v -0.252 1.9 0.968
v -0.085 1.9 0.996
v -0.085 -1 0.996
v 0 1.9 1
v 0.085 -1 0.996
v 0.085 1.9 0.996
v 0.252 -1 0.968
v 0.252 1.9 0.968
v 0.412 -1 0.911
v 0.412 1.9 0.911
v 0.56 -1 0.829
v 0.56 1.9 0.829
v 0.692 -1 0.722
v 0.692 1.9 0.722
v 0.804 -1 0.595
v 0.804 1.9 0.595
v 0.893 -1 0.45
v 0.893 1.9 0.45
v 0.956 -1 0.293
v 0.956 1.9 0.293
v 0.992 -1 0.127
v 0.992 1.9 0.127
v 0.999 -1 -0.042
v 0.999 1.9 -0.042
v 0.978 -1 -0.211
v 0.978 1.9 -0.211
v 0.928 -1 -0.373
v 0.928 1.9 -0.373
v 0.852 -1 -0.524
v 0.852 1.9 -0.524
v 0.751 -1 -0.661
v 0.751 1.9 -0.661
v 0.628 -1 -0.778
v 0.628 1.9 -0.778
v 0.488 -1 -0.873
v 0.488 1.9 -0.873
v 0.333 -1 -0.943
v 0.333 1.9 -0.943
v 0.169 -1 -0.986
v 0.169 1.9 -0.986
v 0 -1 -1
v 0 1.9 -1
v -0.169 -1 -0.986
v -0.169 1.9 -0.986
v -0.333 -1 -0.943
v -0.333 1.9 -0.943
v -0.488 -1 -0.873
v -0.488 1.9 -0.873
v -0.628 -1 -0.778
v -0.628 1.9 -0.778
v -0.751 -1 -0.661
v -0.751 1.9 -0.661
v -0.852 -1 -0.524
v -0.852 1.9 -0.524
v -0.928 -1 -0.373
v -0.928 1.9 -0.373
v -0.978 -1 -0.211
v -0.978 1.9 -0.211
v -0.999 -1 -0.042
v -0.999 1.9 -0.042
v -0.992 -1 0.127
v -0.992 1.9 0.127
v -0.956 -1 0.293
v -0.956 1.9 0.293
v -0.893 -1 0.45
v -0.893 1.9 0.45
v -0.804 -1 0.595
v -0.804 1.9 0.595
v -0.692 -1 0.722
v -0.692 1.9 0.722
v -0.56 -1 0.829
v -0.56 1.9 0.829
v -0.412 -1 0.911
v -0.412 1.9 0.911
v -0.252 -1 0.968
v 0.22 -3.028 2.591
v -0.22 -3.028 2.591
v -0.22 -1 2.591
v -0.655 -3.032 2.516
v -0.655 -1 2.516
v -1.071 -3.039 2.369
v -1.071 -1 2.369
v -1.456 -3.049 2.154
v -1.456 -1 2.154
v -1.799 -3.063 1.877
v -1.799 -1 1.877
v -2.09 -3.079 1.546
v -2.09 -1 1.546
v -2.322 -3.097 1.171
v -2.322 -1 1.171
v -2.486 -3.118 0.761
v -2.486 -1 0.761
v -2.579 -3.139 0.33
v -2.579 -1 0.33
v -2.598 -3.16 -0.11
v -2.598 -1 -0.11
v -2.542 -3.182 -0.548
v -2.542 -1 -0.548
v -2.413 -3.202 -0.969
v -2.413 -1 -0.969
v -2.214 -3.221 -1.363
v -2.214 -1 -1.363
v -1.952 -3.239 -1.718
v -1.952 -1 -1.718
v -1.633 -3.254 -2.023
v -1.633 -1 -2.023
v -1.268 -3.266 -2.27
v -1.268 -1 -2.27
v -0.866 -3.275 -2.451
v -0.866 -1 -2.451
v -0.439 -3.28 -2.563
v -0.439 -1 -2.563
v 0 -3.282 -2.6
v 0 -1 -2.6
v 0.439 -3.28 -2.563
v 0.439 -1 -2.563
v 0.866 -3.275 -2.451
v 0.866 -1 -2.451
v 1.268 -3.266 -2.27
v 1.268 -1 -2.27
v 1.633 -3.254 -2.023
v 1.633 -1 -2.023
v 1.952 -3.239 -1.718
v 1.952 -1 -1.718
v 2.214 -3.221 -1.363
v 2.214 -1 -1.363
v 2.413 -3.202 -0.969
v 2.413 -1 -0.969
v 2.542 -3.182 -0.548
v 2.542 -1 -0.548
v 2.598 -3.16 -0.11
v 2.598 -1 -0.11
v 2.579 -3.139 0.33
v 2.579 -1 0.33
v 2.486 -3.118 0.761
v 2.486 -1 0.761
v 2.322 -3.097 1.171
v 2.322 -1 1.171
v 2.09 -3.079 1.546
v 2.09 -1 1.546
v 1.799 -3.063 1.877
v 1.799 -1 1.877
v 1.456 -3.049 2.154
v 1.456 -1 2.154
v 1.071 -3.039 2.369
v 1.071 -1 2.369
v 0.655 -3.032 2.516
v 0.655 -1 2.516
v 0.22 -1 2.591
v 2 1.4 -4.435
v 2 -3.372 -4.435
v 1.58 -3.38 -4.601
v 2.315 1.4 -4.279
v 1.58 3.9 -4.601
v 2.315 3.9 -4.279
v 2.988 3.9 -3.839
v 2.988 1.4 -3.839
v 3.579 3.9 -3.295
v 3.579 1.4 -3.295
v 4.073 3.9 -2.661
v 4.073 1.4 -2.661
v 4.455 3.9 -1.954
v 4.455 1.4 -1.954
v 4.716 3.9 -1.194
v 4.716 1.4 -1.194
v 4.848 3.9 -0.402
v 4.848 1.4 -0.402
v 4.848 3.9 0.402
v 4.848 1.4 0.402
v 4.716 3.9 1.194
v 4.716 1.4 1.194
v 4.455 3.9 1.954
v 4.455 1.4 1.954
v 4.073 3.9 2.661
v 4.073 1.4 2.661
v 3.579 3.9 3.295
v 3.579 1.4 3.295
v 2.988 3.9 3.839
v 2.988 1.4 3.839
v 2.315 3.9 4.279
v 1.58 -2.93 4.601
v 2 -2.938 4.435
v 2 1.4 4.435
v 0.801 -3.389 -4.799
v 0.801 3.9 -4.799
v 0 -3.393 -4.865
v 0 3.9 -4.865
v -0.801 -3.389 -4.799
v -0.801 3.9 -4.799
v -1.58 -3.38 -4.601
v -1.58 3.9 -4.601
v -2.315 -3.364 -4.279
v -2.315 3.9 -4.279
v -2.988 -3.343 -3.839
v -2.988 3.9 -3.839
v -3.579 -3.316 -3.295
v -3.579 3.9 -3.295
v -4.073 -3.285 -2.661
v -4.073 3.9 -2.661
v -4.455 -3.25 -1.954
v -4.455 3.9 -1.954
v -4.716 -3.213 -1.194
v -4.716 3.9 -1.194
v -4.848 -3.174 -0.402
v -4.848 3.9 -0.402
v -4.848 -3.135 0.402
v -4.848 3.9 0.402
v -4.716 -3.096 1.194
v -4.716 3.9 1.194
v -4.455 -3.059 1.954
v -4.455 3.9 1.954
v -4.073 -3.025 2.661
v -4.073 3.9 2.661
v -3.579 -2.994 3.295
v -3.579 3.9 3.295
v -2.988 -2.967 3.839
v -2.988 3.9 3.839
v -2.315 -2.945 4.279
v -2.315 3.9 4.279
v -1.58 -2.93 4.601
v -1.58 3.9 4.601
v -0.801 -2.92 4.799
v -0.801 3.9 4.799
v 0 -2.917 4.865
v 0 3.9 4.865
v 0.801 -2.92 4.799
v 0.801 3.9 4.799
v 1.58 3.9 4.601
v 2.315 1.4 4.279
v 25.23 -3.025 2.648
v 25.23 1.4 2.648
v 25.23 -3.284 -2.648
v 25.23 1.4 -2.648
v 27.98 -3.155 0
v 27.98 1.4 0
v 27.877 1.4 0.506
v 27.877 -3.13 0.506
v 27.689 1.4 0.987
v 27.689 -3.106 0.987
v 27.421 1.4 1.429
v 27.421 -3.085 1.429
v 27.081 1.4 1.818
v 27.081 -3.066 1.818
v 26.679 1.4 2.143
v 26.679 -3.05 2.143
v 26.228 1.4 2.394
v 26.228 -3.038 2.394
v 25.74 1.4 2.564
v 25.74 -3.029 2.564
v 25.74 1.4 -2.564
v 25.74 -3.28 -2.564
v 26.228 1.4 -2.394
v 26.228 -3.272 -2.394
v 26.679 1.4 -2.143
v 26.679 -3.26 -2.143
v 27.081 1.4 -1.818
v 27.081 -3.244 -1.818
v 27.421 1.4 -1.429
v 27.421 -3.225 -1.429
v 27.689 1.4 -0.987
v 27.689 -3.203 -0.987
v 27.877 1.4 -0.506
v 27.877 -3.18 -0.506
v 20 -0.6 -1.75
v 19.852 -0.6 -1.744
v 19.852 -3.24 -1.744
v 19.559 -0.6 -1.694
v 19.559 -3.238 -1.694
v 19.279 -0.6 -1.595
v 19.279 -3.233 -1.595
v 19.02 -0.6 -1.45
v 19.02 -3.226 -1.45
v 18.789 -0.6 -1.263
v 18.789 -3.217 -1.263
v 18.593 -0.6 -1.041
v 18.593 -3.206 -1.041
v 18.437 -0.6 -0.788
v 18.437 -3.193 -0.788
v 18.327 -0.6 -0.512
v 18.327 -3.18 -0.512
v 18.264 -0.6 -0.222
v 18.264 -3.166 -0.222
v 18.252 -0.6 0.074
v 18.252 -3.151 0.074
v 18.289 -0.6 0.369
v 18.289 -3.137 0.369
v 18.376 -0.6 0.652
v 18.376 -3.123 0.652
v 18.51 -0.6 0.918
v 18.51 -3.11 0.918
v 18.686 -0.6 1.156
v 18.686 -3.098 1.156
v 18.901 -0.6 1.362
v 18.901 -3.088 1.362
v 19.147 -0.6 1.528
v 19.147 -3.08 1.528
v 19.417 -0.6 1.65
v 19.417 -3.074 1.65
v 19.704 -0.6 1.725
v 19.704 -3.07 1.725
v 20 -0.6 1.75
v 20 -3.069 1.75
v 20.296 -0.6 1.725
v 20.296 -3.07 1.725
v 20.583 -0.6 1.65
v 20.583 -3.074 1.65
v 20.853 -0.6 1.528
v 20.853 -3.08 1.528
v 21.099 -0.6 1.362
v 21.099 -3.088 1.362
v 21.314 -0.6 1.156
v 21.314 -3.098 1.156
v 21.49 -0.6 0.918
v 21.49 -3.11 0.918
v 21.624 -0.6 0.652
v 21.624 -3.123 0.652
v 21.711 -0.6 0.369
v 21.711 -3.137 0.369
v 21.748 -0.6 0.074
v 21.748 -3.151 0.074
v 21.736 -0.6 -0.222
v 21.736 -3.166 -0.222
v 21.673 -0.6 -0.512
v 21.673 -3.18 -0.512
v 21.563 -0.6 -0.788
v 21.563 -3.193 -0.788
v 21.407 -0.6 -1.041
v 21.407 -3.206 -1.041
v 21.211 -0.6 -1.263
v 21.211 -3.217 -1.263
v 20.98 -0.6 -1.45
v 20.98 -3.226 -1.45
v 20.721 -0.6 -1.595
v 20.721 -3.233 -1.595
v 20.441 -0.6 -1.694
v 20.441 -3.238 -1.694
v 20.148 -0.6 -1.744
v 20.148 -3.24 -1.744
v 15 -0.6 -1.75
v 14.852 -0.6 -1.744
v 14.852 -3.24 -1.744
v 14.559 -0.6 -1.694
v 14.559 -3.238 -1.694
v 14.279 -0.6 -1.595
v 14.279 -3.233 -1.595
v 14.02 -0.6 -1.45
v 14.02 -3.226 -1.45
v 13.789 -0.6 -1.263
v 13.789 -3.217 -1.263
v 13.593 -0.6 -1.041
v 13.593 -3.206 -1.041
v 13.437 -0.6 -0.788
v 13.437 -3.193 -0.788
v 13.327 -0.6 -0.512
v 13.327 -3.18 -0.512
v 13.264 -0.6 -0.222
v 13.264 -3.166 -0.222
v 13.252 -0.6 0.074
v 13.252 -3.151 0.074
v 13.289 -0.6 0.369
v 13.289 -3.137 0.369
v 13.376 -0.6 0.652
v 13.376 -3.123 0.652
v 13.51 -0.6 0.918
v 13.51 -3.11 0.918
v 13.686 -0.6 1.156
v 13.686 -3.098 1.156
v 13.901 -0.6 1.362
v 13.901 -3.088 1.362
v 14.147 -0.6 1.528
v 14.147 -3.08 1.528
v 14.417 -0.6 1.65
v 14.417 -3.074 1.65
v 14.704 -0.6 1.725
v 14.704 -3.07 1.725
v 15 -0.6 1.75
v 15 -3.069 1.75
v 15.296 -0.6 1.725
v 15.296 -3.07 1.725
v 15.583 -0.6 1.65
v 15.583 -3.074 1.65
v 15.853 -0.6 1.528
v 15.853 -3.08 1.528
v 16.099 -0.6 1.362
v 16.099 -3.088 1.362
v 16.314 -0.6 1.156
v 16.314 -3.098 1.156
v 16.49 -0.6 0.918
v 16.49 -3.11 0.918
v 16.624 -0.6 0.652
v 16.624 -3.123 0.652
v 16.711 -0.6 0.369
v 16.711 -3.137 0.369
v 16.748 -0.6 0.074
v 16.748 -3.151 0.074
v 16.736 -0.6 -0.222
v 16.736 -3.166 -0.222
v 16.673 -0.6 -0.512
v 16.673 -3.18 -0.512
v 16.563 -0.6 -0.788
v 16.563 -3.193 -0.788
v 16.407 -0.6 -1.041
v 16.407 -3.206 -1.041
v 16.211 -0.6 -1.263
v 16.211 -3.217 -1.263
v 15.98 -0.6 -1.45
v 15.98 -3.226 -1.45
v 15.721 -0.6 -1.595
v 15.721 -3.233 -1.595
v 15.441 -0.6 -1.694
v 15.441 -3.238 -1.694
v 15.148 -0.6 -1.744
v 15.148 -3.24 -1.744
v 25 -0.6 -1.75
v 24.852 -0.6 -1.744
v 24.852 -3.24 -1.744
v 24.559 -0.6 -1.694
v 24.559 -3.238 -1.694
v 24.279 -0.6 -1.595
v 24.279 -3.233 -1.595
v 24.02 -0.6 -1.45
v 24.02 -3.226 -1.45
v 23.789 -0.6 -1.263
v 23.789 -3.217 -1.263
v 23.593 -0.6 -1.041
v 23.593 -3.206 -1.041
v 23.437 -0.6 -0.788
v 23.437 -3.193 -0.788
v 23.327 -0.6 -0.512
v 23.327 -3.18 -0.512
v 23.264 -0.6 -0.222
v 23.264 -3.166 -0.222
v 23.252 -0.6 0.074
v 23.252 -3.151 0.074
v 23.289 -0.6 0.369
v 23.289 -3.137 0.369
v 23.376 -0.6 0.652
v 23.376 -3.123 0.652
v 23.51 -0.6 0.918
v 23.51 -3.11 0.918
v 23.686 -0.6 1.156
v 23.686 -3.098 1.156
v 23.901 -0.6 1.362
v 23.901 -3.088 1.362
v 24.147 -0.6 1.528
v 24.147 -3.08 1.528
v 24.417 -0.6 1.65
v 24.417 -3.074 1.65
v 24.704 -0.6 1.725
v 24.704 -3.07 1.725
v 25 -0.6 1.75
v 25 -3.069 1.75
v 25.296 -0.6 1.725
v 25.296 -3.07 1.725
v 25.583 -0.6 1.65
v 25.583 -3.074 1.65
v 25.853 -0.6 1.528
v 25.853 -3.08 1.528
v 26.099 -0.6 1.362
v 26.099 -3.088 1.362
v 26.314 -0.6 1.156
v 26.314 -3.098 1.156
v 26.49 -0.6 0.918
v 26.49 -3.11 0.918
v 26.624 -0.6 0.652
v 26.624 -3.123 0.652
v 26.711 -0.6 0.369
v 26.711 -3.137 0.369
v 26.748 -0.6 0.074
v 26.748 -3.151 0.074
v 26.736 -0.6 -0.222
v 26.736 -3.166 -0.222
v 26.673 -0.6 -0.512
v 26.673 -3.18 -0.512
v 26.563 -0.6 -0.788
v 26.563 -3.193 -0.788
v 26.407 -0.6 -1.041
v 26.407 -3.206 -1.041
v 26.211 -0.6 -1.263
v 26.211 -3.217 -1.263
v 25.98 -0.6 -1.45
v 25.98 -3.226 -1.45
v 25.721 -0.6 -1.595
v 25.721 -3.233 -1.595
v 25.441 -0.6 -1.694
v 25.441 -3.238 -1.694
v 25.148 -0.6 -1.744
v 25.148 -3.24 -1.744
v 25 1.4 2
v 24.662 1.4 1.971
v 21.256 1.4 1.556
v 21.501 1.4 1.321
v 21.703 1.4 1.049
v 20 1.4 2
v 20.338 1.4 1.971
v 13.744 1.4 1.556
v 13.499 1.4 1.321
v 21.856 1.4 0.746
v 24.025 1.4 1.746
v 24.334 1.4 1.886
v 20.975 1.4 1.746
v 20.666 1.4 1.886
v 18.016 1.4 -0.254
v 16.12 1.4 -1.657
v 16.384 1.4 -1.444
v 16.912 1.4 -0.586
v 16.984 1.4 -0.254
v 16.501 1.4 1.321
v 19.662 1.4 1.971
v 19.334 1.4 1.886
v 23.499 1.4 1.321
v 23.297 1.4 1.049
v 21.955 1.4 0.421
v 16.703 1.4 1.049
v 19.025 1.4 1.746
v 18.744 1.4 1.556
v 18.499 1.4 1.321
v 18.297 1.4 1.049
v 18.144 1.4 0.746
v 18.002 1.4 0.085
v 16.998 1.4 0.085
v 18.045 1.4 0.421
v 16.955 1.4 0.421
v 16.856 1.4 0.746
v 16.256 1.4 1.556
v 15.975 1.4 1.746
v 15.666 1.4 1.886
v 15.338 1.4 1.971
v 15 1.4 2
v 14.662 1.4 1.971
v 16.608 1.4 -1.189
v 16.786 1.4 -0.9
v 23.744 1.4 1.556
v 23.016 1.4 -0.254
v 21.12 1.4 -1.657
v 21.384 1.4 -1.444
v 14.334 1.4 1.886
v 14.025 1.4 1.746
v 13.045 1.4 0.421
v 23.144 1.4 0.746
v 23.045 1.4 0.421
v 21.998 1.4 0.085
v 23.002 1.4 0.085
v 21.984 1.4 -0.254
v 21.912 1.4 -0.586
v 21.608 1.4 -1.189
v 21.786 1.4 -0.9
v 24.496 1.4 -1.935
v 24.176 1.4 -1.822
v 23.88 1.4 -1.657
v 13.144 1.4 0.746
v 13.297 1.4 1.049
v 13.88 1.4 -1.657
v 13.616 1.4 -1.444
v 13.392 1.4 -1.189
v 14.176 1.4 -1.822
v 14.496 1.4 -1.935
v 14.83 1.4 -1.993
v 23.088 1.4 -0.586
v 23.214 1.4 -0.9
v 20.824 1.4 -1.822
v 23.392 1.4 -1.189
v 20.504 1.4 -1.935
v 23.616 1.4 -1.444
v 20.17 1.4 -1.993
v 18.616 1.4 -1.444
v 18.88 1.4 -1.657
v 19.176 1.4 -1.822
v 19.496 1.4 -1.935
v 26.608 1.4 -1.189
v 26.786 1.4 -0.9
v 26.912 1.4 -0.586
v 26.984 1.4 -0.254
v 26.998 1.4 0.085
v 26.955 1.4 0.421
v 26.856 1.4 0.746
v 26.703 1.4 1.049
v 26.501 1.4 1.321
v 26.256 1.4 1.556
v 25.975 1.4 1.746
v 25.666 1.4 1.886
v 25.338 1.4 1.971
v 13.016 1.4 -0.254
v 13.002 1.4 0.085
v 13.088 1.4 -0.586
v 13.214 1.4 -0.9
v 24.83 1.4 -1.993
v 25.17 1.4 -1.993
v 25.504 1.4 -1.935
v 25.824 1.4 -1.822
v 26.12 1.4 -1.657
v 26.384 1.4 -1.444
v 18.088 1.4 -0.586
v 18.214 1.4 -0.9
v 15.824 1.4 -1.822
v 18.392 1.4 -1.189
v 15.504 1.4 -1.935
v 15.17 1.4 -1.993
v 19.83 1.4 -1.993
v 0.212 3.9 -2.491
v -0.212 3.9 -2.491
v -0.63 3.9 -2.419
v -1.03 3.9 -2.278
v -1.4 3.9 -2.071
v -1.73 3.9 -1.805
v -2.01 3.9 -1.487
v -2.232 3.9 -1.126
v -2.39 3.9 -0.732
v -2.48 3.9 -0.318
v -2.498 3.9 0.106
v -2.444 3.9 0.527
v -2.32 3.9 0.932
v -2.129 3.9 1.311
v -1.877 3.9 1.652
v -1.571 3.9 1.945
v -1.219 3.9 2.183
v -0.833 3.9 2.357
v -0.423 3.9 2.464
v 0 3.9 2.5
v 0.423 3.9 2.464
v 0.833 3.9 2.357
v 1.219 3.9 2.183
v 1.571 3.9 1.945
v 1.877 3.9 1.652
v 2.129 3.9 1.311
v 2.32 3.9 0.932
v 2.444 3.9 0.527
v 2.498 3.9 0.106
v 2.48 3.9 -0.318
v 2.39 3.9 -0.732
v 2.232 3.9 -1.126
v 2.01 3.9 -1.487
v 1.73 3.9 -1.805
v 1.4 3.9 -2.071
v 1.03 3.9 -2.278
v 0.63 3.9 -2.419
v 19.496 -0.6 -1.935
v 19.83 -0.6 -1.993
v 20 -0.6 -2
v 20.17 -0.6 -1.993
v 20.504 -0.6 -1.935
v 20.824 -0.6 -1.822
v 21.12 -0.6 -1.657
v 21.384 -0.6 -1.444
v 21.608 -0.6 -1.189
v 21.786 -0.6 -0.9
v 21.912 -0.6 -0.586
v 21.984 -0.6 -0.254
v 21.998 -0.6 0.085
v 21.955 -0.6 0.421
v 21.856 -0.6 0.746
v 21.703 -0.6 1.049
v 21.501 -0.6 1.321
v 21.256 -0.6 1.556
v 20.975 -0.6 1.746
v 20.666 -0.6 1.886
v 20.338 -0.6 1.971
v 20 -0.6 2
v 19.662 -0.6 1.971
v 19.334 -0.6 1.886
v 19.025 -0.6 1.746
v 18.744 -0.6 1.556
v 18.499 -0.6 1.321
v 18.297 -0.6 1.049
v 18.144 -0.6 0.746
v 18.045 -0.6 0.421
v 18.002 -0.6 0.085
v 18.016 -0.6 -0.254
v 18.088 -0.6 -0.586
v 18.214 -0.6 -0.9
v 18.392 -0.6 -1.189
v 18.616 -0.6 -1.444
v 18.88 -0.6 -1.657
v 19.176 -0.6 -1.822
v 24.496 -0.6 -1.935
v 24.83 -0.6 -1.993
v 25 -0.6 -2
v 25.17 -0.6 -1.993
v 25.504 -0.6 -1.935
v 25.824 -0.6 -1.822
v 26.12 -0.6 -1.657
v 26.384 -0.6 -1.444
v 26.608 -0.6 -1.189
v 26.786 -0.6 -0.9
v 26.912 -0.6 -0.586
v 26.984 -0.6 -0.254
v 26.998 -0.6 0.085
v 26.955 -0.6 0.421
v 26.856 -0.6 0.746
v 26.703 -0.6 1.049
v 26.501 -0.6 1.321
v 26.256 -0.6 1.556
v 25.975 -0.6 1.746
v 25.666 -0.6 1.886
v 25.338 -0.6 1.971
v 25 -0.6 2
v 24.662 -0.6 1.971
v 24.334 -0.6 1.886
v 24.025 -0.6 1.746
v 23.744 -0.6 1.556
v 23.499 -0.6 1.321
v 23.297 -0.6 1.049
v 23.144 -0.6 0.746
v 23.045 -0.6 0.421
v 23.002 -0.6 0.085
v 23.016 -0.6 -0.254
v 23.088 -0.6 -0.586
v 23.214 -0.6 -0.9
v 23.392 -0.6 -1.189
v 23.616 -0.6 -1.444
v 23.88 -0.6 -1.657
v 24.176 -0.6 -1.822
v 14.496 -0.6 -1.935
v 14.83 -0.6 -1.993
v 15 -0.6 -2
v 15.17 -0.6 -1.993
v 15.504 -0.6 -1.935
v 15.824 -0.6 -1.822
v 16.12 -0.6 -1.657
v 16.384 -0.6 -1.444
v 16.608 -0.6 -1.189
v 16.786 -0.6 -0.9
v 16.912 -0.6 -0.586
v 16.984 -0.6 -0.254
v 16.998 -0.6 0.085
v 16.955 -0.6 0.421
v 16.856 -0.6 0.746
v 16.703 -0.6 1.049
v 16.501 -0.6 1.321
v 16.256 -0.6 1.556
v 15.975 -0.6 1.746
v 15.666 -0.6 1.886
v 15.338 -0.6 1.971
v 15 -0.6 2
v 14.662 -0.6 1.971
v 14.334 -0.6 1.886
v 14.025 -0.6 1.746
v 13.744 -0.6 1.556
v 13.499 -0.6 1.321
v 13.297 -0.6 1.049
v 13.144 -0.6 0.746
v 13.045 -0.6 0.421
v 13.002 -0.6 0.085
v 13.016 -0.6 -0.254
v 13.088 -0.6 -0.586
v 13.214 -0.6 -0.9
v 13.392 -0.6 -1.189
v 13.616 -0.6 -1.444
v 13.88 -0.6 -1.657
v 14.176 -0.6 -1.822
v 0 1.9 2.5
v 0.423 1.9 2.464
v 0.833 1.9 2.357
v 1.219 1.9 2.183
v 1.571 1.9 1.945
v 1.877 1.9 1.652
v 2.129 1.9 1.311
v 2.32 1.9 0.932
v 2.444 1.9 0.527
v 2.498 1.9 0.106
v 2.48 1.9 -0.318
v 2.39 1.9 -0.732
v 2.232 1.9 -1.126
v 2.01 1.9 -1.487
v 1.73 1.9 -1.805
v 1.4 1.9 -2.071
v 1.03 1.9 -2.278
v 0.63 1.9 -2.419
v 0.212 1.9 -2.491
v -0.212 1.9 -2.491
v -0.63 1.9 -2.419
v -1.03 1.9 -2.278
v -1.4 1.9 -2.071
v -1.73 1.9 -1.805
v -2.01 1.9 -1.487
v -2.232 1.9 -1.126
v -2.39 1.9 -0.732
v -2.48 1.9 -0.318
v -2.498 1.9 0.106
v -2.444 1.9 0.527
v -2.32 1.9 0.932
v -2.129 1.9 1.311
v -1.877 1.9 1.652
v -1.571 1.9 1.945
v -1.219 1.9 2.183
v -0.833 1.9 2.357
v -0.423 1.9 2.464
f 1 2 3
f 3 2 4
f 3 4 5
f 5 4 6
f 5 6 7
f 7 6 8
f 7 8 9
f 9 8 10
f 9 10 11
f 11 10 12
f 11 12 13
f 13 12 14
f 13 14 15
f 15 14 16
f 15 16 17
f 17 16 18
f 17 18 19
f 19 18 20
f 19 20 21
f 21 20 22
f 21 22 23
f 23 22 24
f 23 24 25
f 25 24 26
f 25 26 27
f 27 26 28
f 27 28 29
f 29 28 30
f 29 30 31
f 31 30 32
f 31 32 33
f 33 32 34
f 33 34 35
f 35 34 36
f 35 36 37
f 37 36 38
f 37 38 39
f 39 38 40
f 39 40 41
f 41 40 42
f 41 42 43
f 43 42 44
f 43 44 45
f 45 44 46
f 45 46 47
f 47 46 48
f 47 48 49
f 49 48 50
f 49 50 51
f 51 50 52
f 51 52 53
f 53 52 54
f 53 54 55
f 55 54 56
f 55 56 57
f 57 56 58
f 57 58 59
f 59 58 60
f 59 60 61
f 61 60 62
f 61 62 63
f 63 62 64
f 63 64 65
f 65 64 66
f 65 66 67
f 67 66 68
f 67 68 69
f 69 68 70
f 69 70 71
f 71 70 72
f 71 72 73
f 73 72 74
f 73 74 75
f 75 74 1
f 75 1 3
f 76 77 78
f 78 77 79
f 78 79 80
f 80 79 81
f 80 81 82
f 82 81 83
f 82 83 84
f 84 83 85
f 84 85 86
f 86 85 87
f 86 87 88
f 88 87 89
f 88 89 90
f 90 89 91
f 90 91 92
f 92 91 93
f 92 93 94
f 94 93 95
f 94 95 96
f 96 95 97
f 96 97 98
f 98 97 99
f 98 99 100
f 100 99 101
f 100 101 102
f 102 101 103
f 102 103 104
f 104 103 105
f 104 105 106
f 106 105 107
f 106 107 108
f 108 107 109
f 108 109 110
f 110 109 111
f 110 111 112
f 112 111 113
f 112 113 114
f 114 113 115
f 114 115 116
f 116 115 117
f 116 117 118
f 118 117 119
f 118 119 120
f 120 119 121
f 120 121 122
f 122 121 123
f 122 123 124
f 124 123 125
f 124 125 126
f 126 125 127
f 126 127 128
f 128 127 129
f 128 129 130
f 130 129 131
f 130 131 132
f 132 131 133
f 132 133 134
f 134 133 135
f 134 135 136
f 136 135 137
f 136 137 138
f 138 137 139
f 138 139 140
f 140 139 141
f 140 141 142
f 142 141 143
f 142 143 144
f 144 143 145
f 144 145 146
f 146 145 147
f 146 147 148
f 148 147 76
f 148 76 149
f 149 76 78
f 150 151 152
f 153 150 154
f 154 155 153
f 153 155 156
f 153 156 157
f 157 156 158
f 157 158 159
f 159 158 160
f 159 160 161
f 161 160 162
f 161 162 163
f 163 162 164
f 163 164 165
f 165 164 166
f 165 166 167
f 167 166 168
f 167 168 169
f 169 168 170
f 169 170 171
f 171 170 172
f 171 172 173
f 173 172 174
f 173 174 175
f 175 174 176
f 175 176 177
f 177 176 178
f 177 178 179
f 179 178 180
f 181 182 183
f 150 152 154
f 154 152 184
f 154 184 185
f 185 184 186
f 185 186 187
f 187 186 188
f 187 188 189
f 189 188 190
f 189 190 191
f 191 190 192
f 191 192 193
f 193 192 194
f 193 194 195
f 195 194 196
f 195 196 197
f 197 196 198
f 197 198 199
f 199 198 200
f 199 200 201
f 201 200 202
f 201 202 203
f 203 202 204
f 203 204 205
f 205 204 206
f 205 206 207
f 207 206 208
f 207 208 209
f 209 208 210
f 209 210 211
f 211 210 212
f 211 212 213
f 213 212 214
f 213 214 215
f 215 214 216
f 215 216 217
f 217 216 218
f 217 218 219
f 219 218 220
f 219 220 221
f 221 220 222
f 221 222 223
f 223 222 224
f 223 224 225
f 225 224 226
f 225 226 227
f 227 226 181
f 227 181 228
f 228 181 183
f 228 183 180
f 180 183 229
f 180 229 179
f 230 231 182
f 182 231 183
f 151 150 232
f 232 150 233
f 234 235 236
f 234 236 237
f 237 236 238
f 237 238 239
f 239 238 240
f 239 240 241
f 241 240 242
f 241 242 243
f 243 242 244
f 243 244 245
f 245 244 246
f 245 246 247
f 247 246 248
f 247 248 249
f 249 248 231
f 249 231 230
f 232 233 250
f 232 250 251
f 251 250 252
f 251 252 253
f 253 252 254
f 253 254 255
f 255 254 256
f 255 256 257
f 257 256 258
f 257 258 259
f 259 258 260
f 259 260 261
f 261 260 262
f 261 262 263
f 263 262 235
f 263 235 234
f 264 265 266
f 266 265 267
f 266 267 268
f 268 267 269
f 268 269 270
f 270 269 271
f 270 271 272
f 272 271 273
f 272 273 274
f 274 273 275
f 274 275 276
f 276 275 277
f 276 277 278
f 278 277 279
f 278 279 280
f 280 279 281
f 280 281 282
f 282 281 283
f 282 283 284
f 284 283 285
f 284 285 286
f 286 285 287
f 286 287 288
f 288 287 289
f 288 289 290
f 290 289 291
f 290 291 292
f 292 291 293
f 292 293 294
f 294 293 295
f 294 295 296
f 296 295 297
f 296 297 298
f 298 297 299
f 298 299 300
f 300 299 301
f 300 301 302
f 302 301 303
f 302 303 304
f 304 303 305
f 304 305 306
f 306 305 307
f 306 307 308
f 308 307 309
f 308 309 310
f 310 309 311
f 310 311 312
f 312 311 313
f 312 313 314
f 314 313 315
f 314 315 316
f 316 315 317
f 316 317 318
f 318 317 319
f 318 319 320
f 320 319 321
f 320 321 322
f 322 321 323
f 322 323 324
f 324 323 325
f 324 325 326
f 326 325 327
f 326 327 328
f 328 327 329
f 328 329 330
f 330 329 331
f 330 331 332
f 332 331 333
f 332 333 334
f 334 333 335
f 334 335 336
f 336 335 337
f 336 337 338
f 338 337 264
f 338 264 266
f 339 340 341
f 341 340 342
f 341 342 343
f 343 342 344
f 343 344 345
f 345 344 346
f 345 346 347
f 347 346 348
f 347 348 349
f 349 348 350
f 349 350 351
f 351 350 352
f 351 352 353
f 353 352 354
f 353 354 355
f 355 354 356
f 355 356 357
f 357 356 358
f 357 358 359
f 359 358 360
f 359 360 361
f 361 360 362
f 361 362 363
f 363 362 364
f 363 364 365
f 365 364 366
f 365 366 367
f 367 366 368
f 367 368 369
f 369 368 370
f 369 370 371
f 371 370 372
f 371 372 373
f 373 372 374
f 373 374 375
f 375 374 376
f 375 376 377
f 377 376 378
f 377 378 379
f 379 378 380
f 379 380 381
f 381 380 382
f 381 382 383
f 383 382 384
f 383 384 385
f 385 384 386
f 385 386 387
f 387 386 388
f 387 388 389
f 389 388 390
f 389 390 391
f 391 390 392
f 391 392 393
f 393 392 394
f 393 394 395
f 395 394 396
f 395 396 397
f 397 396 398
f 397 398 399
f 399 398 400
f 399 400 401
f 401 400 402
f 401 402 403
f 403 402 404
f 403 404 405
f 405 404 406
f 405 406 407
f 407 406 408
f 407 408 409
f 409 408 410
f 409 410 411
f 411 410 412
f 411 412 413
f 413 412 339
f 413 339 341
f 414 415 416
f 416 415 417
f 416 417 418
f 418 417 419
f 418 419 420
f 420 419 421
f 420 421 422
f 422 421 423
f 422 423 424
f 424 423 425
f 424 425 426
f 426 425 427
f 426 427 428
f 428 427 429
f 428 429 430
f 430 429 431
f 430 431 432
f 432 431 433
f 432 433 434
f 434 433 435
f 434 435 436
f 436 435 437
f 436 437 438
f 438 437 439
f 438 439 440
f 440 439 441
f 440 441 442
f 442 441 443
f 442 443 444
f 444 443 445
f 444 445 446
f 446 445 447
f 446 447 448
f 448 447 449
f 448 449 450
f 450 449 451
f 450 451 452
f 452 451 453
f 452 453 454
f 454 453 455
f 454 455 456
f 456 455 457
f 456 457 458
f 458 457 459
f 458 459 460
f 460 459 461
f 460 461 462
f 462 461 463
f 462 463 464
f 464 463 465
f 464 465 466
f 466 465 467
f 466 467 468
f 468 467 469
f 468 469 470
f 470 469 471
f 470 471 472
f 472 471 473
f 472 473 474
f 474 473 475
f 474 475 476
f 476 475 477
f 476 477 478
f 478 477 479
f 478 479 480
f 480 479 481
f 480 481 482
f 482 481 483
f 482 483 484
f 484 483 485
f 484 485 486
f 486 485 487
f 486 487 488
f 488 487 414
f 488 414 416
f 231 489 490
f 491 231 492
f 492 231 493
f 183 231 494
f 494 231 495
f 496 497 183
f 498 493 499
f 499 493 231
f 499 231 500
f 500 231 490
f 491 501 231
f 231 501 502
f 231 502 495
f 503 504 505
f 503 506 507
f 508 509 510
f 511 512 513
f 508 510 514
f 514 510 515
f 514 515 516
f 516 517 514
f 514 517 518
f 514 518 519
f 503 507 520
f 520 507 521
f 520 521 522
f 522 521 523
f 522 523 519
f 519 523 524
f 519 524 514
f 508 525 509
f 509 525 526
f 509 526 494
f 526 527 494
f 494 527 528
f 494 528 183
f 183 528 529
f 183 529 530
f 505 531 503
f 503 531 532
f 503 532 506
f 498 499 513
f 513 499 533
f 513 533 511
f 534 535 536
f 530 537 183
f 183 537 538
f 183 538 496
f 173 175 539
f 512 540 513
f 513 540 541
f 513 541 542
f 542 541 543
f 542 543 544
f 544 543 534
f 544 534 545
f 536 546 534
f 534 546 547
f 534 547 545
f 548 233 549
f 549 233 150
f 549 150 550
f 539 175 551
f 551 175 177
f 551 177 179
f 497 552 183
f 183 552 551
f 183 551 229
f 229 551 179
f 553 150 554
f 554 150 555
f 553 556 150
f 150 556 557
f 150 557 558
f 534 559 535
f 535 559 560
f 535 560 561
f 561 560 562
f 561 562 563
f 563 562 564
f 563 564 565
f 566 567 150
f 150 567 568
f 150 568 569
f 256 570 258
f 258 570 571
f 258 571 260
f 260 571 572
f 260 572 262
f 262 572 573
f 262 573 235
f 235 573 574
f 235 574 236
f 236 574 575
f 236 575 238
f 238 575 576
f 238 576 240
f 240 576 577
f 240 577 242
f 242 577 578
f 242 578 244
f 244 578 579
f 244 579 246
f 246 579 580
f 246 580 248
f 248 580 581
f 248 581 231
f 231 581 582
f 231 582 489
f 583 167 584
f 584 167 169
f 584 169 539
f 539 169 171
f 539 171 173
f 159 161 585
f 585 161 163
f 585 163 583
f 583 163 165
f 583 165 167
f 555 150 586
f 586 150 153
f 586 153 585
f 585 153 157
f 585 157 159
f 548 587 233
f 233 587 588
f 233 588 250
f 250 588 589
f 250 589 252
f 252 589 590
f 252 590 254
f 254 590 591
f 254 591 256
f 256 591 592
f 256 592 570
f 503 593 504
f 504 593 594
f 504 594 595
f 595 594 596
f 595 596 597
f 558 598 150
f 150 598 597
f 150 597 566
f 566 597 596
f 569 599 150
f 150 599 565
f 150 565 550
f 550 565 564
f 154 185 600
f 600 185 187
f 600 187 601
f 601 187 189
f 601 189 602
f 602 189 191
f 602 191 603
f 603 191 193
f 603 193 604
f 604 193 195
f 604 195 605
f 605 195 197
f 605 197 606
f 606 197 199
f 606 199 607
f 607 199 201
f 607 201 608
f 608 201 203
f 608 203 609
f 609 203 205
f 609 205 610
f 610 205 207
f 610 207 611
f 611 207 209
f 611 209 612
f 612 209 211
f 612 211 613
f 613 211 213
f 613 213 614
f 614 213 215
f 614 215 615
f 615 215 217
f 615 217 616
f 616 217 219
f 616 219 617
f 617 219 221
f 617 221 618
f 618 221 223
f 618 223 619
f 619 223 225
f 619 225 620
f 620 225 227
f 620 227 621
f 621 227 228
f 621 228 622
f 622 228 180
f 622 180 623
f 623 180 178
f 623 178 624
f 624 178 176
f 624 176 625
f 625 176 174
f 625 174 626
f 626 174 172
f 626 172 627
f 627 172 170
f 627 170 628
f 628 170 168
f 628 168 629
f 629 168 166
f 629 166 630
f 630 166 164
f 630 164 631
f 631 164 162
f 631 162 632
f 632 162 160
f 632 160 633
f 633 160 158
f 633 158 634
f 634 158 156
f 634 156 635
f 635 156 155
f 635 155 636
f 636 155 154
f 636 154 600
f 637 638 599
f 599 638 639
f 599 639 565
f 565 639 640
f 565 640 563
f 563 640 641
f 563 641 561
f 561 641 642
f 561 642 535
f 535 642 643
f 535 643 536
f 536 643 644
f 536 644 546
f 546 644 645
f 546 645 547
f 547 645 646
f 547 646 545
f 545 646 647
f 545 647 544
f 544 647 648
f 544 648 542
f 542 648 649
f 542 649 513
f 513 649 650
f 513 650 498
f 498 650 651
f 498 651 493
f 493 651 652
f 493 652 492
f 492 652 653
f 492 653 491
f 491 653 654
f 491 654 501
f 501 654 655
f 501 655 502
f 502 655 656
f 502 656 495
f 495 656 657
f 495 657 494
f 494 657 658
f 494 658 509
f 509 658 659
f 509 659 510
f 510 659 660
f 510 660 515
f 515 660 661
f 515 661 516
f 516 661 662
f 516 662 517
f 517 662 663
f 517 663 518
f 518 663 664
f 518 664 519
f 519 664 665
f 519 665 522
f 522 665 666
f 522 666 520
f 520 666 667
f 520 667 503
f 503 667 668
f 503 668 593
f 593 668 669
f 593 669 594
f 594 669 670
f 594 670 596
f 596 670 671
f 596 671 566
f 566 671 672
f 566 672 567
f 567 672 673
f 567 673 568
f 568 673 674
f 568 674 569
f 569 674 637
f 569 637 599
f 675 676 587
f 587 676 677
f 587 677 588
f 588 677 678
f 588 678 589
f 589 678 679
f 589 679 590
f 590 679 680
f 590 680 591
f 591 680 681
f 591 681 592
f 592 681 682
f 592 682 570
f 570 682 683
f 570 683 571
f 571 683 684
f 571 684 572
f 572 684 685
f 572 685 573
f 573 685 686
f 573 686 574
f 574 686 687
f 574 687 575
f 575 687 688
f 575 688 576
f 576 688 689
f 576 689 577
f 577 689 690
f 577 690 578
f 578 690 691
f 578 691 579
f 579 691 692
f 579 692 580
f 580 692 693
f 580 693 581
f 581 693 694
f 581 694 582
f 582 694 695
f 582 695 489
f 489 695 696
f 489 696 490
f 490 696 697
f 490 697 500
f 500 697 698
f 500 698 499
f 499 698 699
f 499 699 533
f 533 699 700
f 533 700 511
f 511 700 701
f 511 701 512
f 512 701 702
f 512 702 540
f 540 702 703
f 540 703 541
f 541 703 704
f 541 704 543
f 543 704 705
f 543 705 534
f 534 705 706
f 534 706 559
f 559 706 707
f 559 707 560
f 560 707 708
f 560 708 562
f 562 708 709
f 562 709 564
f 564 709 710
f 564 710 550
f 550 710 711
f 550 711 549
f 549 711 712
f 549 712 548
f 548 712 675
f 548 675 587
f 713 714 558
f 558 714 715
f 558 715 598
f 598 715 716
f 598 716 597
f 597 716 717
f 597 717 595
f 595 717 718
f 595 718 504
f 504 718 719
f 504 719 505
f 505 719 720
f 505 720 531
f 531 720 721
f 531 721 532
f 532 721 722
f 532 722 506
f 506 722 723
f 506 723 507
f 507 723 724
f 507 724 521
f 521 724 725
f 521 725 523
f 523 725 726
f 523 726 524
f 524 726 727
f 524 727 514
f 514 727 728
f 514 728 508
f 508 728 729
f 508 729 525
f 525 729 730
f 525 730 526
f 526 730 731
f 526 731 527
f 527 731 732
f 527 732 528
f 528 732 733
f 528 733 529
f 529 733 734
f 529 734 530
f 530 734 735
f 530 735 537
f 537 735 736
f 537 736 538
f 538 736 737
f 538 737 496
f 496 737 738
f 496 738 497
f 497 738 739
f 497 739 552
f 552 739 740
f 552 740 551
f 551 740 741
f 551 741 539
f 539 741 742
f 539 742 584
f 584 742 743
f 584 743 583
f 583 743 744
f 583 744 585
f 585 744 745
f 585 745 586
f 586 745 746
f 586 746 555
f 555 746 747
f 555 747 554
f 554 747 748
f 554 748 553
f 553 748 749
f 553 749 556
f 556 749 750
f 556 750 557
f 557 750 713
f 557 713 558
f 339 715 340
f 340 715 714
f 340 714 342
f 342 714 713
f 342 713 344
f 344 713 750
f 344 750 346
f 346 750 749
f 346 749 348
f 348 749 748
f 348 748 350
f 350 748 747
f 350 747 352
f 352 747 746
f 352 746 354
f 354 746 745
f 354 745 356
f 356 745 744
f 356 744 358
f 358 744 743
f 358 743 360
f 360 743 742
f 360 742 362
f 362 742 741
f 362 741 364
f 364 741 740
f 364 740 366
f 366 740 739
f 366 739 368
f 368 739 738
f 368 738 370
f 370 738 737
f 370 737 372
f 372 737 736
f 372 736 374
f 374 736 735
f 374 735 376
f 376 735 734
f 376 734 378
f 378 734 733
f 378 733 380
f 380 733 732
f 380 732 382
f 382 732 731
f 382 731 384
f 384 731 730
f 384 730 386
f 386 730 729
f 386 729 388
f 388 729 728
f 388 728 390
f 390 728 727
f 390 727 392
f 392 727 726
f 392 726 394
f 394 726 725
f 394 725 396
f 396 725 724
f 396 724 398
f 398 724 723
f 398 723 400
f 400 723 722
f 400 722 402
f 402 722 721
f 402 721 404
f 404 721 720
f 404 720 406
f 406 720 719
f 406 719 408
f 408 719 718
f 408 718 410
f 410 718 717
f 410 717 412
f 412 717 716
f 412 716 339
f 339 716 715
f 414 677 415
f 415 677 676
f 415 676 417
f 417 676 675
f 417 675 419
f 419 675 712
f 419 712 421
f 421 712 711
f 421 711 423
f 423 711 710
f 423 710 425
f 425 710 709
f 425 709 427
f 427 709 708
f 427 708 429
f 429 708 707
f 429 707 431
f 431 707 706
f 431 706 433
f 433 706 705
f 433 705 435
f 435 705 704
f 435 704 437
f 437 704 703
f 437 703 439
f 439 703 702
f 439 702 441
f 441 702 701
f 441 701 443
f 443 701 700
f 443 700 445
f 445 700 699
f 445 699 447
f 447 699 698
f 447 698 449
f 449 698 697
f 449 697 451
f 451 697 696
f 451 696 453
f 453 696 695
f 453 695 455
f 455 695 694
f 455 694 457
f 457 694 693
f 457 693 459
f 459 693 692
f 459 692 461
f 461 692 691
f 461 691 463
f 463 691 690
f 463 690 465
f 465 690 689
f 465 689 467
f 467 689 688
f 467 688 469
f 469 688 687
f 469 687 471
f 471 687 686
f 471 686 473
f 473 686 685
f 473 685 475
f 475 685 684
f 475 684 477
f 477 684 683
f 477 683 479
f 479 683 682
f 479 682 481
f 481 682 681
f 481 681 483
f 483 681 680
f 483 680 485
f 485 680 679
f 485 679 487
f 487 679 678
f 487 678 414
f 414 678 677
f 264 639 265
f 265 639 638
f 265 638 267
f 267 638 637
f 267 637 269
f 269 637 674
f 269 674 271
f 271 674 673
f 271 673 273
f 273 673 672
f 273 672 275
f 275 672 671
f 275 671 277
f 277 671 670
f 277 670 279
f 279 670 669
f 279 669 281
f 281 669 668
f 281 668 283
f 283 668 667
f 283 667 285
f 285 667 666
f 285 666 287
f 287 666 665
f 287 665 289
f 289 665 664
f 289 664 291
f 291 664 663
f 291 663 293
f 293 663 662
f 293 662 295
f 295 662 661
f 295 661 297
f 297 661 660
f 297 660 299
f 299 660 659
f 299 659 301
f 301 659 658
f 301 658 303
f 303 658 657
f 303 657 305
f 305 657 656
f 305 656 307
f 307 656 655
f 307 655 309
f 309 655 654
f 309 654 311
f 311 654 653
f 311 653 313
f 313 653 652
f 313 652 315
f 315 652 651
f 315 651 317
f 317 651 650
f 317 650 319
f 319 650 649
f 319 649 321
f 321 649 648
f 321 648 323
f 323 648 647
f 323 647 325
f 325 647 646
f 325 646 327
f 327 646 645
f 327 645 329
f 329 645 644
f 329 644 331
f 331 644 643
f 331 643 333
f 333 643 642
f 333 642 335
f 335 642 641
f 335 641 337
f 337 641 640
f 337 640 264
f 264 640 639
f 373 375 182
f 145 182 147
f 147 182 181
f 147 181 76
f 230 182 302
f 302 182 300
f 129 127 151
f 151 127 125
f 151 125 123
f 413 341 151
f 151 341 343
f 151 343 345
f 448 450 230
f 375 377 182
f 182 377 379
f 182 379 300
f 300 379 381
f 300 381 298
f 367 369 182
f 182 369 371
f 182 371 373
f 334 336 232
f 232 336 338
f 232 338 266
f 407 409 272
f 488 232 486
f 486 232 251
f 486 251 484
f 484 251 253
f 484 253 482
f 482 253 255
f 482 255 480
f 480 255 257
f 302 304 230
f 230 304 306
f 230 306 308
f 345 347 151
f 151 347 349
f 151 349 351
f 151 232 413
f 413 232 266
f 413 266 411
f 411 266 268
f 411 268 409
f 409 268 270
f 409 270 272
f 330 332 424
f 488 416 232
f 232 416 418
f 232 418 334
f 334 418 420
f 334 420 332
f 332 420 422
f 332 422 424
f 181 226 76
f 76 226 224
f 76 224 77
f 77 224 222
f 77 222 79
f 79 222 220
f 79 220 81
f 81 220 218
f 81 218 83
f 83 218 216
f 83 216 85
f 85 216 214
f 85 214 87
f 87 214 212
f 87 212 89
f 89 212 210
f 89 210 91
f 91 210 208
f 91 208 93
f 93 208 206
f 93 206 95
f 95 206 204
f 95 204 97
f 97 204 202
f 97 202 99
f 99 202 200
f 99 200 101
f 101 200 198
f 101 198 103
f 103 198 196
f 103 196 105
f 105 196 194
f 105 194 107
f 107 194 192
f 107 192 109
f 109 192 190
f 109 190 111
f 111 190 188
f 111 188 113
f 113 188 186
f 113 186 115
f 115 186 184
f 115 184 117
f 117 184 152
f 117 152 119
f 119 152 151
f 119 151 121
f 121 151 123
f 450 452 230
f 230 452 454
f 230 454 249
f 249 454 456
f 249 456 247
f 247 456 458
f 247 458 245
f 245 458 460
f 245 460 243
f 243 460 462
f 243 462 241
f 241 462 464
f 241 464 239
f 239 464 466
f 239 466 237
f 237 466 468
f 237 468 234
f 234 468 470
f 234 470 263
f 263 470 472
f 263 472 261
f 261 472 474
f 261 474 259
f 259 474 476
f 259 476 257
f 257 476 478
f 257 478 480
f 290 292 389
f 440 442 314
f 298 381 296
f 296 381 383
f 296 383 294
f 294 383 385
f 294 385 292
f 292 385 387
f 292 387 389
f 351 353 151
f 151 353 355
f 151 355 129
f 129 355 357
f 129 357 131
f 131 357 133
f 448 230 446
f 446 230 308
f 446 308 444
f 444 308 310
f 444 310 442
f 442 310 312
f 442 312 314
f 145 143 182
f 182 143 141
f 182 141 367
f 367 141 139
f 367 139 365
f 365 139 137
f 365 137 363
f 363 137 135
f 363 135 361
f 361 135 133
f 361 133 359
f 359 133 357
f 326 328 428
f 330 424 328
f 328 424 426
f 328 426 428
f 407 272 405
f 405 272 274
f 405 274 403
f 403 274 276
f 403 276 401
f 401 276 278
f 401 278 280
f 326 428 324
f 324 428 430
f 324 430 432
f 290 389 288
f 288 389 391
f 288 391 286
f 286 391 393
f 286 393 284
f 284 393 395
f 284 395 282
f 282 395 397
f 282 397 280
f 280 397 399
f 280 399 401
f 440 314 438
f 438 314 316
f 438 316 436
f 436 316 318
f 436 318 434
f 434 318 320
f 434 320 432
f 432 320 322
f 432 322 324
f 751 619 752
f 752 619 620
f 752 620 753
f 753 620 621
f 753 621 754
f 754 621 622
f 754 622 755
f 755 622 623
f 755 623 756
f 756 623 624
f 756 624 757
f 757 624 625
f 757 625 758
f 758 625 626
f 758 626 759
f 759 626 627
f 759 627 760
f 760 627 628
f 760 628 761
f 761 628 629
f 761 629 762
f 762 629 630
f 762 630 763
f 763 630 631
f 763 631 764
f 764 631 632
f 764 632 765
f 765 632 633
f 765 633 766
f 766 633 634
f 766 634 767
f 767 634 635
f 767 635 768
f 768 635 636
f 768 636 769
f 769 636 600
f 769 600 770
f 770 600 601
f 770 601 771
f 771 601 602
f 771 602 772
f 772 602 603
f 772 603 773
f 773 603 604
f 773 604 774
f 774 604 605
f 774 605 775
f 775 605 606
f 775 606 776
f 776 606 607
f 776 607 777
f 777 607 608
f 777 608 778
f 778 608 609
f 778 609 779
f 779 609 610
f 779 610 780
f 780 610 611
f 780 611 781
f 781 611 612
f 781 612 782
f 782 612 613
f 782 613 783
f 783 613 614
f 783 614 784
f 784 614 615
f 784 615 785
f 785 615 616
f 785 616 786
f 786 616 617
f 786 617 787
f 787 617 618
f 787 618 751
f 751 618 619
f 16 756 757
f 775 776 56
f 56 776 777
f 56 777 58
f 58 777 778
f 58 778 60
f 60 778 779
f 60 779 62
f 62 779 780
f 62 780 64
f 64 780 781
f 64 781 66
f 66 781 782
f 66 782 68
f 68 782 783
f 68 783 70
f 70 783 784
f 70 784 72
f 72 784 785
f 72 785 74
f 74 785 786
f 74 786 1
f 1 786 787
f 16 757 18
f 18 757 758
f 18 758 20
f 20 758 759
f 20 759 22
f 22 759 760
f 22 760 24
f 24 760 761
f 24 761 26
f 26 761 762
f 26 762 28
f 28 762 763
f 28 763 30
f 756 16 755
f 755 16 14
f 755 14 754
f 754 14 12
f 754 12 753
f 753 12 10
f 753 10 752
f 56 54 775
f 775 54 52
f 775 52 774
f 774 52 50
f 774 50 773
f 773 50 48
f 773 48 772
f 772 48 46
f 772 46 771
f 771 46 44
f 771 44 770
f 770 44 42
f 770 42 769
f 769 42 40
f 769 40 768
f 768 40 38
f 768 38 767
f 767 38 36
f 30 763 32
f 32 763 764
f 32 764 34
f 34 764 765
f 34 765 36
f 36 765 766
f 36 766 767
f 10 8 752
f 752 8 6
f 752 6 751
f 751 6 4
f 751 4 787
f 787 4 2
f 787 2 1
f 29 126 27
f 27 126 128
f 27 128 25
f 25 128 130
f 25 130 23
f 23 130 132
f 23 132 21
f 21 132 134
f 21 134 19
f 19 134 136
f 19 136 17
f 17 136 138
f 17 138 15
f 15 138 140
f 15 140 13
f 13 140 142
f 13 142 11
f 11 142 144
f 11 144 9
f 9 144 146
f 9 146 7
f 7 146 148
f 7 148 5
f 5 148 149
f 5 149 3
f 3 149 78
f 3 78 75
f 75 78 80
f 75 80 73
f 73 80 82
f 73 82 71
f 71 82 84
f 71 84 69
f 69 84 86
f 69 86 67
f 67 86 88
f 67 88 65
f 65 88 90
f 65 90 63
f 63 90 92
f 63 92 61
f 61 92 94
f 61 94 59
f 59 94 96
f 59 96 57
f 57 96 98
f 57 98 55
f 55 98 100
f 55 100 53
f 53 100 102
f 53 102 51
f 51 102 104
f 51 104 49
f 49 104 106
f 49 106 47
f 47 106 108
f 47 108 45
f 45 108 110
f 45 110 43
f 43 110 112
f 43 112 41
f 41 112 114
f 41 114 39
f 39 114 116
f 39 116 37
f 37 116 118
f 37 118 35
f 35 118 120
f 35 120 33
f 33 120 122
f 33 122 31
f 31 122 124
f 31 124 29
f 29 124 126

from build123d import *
from build123d.topology import SkipClean

# Parameters (mm, degrees)
SKETCH1_R                = 0.6
BOSS_EXTRUDE1_DEPTH      = 1.4
SKETCH2_R                = 2.6
CUT_EXTRUDE1_DEPTH       = 1
SKETCH3_R                = 3.5
SKETCH3_R_2              = 1
BOSS_EXTRUDE2_DEPTH      = 2.5
SKETCH4_R                = 1.2
CUT_EXTRUDE2_DEPTH       = 20.282440198
SKETCH6_W                = 35.735260114
SKETCH6_H                = 17.672039004
CUT_EXTRUDE4_DEPTH       = 20.513392837
CUT_EXTRUDE5_DEPTH       = 18.980545042
SKETCH_1_R               = 0.75
EXTRUDE_1_DEPTH          = 2
EXTRUDE_START            = 0.6
SKETCH_2_R               = 0.6
SKETCH_2_R_2             = 2.6
EXTRUDE_2_DEPTH          = 0.6
CUT_EXTRUDE_1_DEPTH      = 26.836795467
CUT_EXTRUDE_1_DEPTH_BACK = 26.836795467
SKETCH_3_R               = 0.75
SKETCH_3_R_2             = 0.6
EXTRUDE_3_REACH          = 27.837
EXTRUDE_4_DEPTH          = 2
CUT_EXTRUDE_2_DEPTH      = 10
CUT_EXTRUDE_2_DEPTH_BACK = 2
SKETCH_7_R               = 2
FILLET_1_R               = 3
EXTRUDE_START_2          = 3
SKETCH_9_R               = 1.75
SKETCH_9_R_2             = 2.6
EXTRUDE_5_DEPTH          = 3
EXTRUDE_START_3          = -5
SKETCH_10_R              = 4.86502339
SKETCH_10_R_2            = 3.625748898
EXTRUDE_6_DEPTH          = 5
CUT_EXTRUDE_5_DEPTH      = 0.6
CUT_EXTRUDE_5_DEPTH_BACK = 30.442340009
SKETCH_13_W              = 39.79025269
SKETCH_13_H              = 26.985080274
EXTRUDE_START_4          = -2.9
SKETCH_14_R              = 4.86502339
SKETCH_14_R_2            = 1
EXTRUDE_7_DEPTH          = 2.9
SKETCH_15_R              = 2.5
CUT_EXTRUDE_6_DEPTH      = 2
EXTRUDE_START_5          = 2
SKETCH_16_R              = 2.6
SKETCH_16_R_2            = 1
EXTRUDE_8_DEPTH          = 2


with BuildPart() as part:
    # Sketch1 → Boss-Extrude1 (new body)
    with BuildSketch(Plane(origin=(0, 0, 0), x_dir=(1, 0, 0), z_dir=(0, 1, 0))):
        with BuildLine():
            Line((-15.2, 2), (-2, 2.95))
            Line((-2, 2.95), (-2, 6.35))
            ThreePointArc((-2, 6.35), (0, 8.35), (2, 6.35))
            Line((2, 6.35), (2, 3.5))
            Line((2, 3.5), (15.2, 2))
            ThreePointArc((15.2, 2), (17.2, 0), (15.2, -2))
            Line((15.2, -2), (2, -3.5))
            Line((2, -3.5), (2, -6.35))
            ThreePointArc((2, -6.35), (0, -8.35), (-2, -6.35))
            Line((-2, -6.35), (-2, -2.95))
            Line((-2, -2.95), (-15.2, -2))
            ThreePointArc((-15.2, -2), (-17.2, 0), (-15.2, 2))
        make_face()
        with Locations(Location((0, 6.35, 0), (0, 0, 270))):
            Circle(SKETCH1_R, mode=Mode.SUBTRACT)
        with Locations(Location((0, 4.75, 0), (0, 0, 270))):
            Circle(SKETCH1_R, mode=Mode.SUBTRACT)
        with Locations(Location((0, -4.75, 0), (0, 0, 90))):
            Circle(SKETCH1_R, mode=Mode.SUBTRACT)
        with Locations(Location((0, -6.35, 0), (0, 0, 90))):
            Circle(SKETCH1_R, mode=Mode.SUBTRACT)
        with Locations(Location((-15.2, 0, 0), (0, 0, 270))):
            Circle(SKETCH1_R, mode=Mode.SUBTRACT)
        with Locations(Location((15.2, 0, 0), (0, 0, 270))):
            Circle(SKETCH1_R, mode=Mode.SUBTRACT)
        with Locations(Location((-13.4, 0, 0), (0, 0, 270))):
            Circle(SKETCH1_R, mode=Mode.SUBTRACT)
        with Locations(Location((-11.6, 0, 0), (0, 0, 270))):
            Circle(SKETCH1_R, mode=Mode.SUBTRACT)
        with Locations(Location((-9.8, 0, 0), (0, 0, 270))):
            Circle(SKETCH1_R, mode=Mode.SUBTRACT)
        with Locations(Location((-8, 0, 0), (0, 0, 270))):
            Circle(SKETCH1_R, mode=Mode.SUBTRACT)
        with Locations(Location((-6.2, 0, 0), (0, 0, 270))):
            Circle(SKETCH1_R, mode=Mode.SUBTRACT)
        with Locations(Location((-4.4, 0, 0), (0, 0, 270))):
            Circle(SKETCH1_R, mode=Mode.SUBTRACT)
        with Locations(Location((13.4, 0, 0), (0, 0, 270))):
            Circle(SKETCH1_R, mode=Mode.SUBTRACT)
        with Locations(Location((11.6, 0, 0), (0, 0, 270))):
            Circle(SKETCH1_R, mode=Mode.SUBTRACT)
        with Locations(Location((9.8, 0, 0), (0, 0, 270))):
            Circle(SKETCH1_R, mode=Mode.SUBTRACT)
        with Locations(Location((8, 0, 0), (0, 0, 270))):
            Circle(SKETCH1_R, mode=Mode.SUBTRACT)
        with Locations(Location((6.2, 0, 0), (0, 0, 270))):
            Circle(SKETCH1_R, mode=Mode.SUBTRACT)
        with Locations(Location((4.4, 0, 0), (0, 0, 270))):
            Circle(SKETCH1_R, mode=Mode.SUBTRACT)
    extrude(amount=BOSS_EXTRUDE1_DEPTH)

    # Sketch2 → Cut-Extrude1 (cut)
    with BuildSketch(Plane.XZ):
        with Locations(Location((0, 0, 0), (0, 0, 270))):
            Circle(SKETCH2_R)
    extrude(amount=-CUT_EXTRUDE1_DEPTH, mode=Mode.SUBTRACT)

    # Sketch3 → Boss-Extrude2 (add)
    with BuildSketch(Plane(origin=(0, 1.4, 0), x_dir=(1, 0, 0), z_dir=(0, 1, 0))):
        with Locations(Location((0, 0, 0), (0, 0, 270))):
            Circle(SKETCH3_R)
        with Locations(Location((0, 0, 0), (0, 0, 270))):
            Circle(SKETCH3_R_2, mode=Mode.SUBTRACT)
    extrude(amount=BOSS_EXTRUDE2_DEPTH)

    # Sketch4 → Cut-Extrude2 (cut, through all)
    with BuildSketch(Plane(origin=(0, 1.4, 0), x_dir=(1, 0, 0), z_dir=(0, 1, 0))):
        with Locations(Location((0, 0, 0), (0, 0, 270))):
            Circle(SKETCH4_R)
    extrude(amount=-CUT_EXTRUDE2_DEPTH, mode=Mode.SUBTRACT)

    # Sketch6 → Cut-Extrude4 (cut, through all)
    with BuildSketch(Plane.XZ):
        Rectangle(SKETCH6_W, SKETCH6_H)
        with BuildLine():
            Line((-1.868584713, -2.959457918), (-15.2, -2))
            ThreePointArc((-15.2, -2), (-17.2, 0), (-15.2, 2))
            Line((-15.2, 2), (-1.868584713, 2.959457918))
            ThreePointArc((-1.868584713, 2.959457918), (0, 3.5), (1.868584713, 2.959457918))
            Line((1.868584713, 2.959457918), (15.2, 2))
            ThreePointArc((15.2, 2), (17.2, 0), (15.2, -2))
            Line((15.2, -2), (1.868584713, -2.959457918))
            ThreePointArc((1.868584713, -2.959457918), (0, -3.5), (-1.868584713, -2.959457918))
        make_face(mode=Mode.SUBTRACT)
    extrude(amount=-CUT_EXTRUDE4_DEPTH, mode=Mode.SUBTRACT)

    # Sketch7 → Cut-Extrude5 (cut, through all)
    with BuildSketch(Plane.XZ):
        with BuildLine():
            Line((0, 3.5), (-17.731768104, 3.5))
            Line((-17.731768104, 3.5), (-17.731768104, -3.5))
            Line((-17.731768104, -3.5), (0, -3.5))
            ThreePointArc((0, -3.5), (-3.5, 0), (0, 3.5))
        make_face()
    extrude(amount=-CUT_EXTRUDE5_DEPTH, mode=Mode.SUBTRACT)

    # 草圖1 → 填料-伸長1 (add)
    with BuildSketch(Plane(origin=(0, 1.4, 0), x_dir=(1, 0, 0), z_dir=(0, 1, 0))):
        with BuildLine():
            Line((15.2, 2), (23.2, 2))
            ThreePointArc((23.2, 2), (25.2, 0), (23.2, -2))
            Line((23.2, -2), (15.2, -2))
            Line((15.2, -2), (15.2, 2))
        make_face()
        with Locations(Location((17.2, 0, 0), (0, 0, 270))):
            Circle(SKETCH_1_R, mode=Mode.SUBTRACT)
        with Locations(Location((19.2, 0, 0), (0, 0, 270))):
            Circle(SKETCH_1_R, mode=Mode.SUBTRACT)
        with Locations(Location((21.2, 0, 0), (0, 0, 270))):
            Circle(SKETCH_1_R, mode=Mode.SUBTRACT)
        with Locations(Location((23.2, 0, 0), (0, 0, 270))):
            Circle(SKETCH_1_R, mode=Mode.SUBTRACT)
    extrude(amount=-EXTRUDE_1_DEPTH)

    # 草圖2 → 填料-伸長2 (add)
    with SkipClean():  # the faces are left unmerged after this step: merging them gives an invalid solid
        with BuildSketch(Plane.XZ.offset(EXTRUDE_START)):
            with BuildLine():
                ThreePointArc((1.868584713, 2.959457918), (-3.5, 0), (1.868584713, -2.959457918))
                Line((1.868584713, -2.959457918), (15.2, -2))
                Line((15.2, -2), (15.2, -0.6))
                ThreePointArc((15.2, -0.6), (14.6, 0), (15.2, 0.6))
                Line((15.2, 0.6), (15.2, 2))
                Line((15.2, 2), (1.868584713, 2.959457918))
            make_face()
            with Locations(Location((11.6, 0, 0), (0, 0, 270))):
                Circle(SKETCH_2_R, mode=Mode.SUBTRACT)
            with Locations(Location((8, 0, 0), (0, 0, 270))):
                Circle(SKETCH_2_R, mode=Mode.SUBTRACT)
            with Locations(Location((4.4, 0, 0), (0, 0, 270))):
                Circle(SKETCH_2_R, mode=Mode.SUBTRACT)
            with Locations(Location((6.2, 0, 0), (0, 0, 270))):
                Circle(SKETCH_2_R, mode=Mode.SUBTRACT)
            with Locations(Location((9.8, 0, 0), (0, 0, 270))):
                Circle(SKETCH_2_R, mode=Mode.SUBTRACT)
            with Locations(Location((13.4, 0, 0), (0, 0, 270))):
                Circle(SKETCH_2_R, mode=Mode.SUBTRACT)
            with Locations(Location((0, 0, 0), (0, 0, 270))):
                Circle(SKETCH_2_R_2, mode=Mode.SUBTRACT)
        extrude(amount=-EXTRUDE_2_DEPTH)

    # 草圖3 → 除料-伸長1 (cut, two sides: drawn at the far end of the back side and taken through both)
    with SkipClean():  # the faces are left unmerged after this step: merging them gives an invalid solid
        with BuildSketch(Plane.XZ.offset(0.6).offset(-CUT_EXTRUDE_1_DEPTH_BACK)):
            with Locations(Location((17.2, 0, 0), (0, 0, 90))):
                Circle(SKETCH_3_R)
            with Locations(Location((15.2, 0, 0), (0, 0, 270))):
                Circle(SKETCH_3_R_2)
        extrude(amount=CUT_EXTRUDE_1_DEPTH + CUT_EXTRUDE_1_DEPTH_BACK, mode=Mode.SUBTRACT)

    # 填料-伸長3: up to this face of the body (flat: up to its plane)
    extrude_3_end = Plane(part.part.faces().sort_by_distance((0, 3.9, -3.401005051))[0])
    # 草圖4 → 填料-伸長3 (add, up to the picked face)
    with BuildSketch(Plane.XZ.offset(0.6), mode=Mode.PRIVATE) as extrude_3_sk1:
        with BuildLine():
            Line((1.868584713, 2.959457918), (3.972845963, 2.808014874))
            ThreePointArc((3.972845963, 2.808014874), (-4.86502339, 0), (3.972845963, -2.808014874))
            Line((3.972845963, -2.808014874), (1.868584713, -2.959457918))
            ThreePointArc((1.868584713, -2.959457918), (-3.5, 0), (1.868584713, 2.959457918))
        make_face()
    extrude_3_tool1 = split(extrude(extrude_3_sk1.sketch, amount=-EXTRUDE_3_REACH, mode=Mode.PRIVATE), bisect_by=extrude_3_end, keep=Keep.BOTH, mode=Mode.PRIVATE)
    add(extrude_3_tool1.solids().sort_by(Axis((2.930151, -0.6, -3.014844), (0, 1, 0)))[0])

    # 草圖5 → 填料-伸長4 (add)
    with BuildSketch(Plane.XZ.offset(0.6)):
        Polygon((2, 4.434912917), (28, 2.434912917), (28, -2.434912917), (2, -4.434912917), (3, 0), align=None)
    extrude(amount=-EXTRUDE_4_DEPTH)

    # 草圖7 → 除料-伸長2 (cut, two sides: drawn at the far end of the back side and taken through both)
    with BuildSketch(Plane.XZ.offset(0.6).offset(-CUT_EXTRUDE_2_DEPTH_BACK)):
        with Locations(Location((15, 0, 0), (0, 0, 90))):
            Circle(SKETCH_7_R)
        with Locations(Location((25, 0, 0), (0, 0, 90))):
            Circle(SKETCH_7_R)
        with Locations(Location((20, 0, 0), (0, 0, 90))):
            Circle(SKETCH_7_R)
    extrude(amount=CUT_EXTRUDE_2_DEPTH + CUT_EXTRUDE_2_DEPTH_BACK, mode=Mode.SUBTRACT)

    # 圓角1
    # the kernel refuses this fillet: 3 mm, written as the material it takes off along each edge
    with BuildSketch(Plane(origin=(28, -7.545233544, -2.434912917), x_dir=(-0.9970544855015815, 0, -0.07669649888473681), z_dir=(0, 1, 0)), Plane(origin=(28, -7.545233544, 2.434912917), x_dir=(0, 0, -1), z_dir=(0, 1, 0))) as fillet_1_piece_1:
        with BuildLine():
            CenterArc((FILLET_1_R * 0.926031139262, FILLET_1_R), FILLET_1_R, 184.398705355, 85.601294645)
            Line((-FILLET_1_R * 0.0710233462396, FILLET_1_R * 0.923303501115), (0, 0))
            Line((0, 0), (FILLET_1_R * 0.926031139262, 0))
        make_face()
    extrude(amount=15.890467089, mode=Mode.SUBTRACT)

    # 草圖9 → 填料-伸長5 (add)
    with BuildSketch(Plane.XZ.offset(0.6).offset(EXTRUDE_START_2)):
        with BuildLine():
            Line((2, -4.434912917), (25.230089497, -2.647982956))
            ThreePointArc((25.230089497, -2.647982956), (27.080772484, -1.817927055), (27.980306552, 0))
            ThreePointArc((27.980306552, 0), (27.080772484, 1.817927055), (25.230089497, 2.647982956))
            Line((25.230089497, 2.647982956), (2, 4.434912917))
            ThreePointArc((2, 4.434912917), (-4.86502339, 0), (2, -4.434912917))
        make_face()
        with Locations(Location((20, 0, 0), (0, 0, 270))):
            Circle(SKETCH_9_R, mode=Mode.SUBTRACT)
        with Locations(Location((0, 0, 0), (0, 0, 270))):
            Circle(SKETCH_9_R_2, mode=Mode.SUBTRACT)
        with Locations(Location((15, 0, 0), (0, 0, 270))):
            Circle(SKETCH_9_R, mode=Mode.SUBTRACT)
        with Locations(Location((25, 0, 0), (0, 0, 270))):
            Circle(SKETCH_9_R, mode=Mode.SUBTRACT)
    extrude(amount=-EXTRUDE_5_DEPTH)

    # 草圖10 → 填料-伸長6 (add)
    with SkipClean():  # the faces are left unmerged after this step: merging them gives an invalid solid
        with BuildSketch(Plane(origin=(0, 3.9, 0), x_dir=(1, 0, 0), z_dir=(0, 1, 0)).offset(EXTRUDE_START_3)):
            with Locations(Location((0, 0, 0), (0, 0, 65.726189772))):
                Circle(SKETCH_10_R)
            Circle(SKETCH_10_R_2, mode=Mode.SUBTRACT)
        extrude(amount=EXTRUDE_6_DEPTH)

    # 草圖13 → 除料-伸長5 (cut, two sides: drawn at the far end of the back side and taken through both)
    with SkipClean():  # the faces are left unmerged after this step: merging them gives an invalid solid
        with BuildSketch(Plane(origin=(0, -3.746497551, 0.183234299), x_dir=(-1, 0, 0), z_dir=(0, 0.9988061373414341, -0.04884976979561333)).offset(-CUT_EXTRUDE_5_DEPTH_BACK)):
            with Locations((-13.477412417, -0.191670973)):
                Rectangle(SKETCH_13_W, SKETCH_13_H)
        extrude(amount=CUT_EXTRUDE_5_DEPTH + CUT_EXTRUDE_5_DEPTH_BACK, mode=Mode.SUBTRACT)

    # 草圖14 → 填料-伸長7 (add)
    with SkipClean():  # the faces are left unmerged after this step: merging them gives an invalid solid
        with BuildSketch(Plane(origin=(0, 3.9, 0), x_dir=(1, 0, 0), z_dir=(0, 1, 0)).offset(EXTRUDE_START_4)):
            with Locations(Location((0, 0, 0), (0, 0, 65.726189772))):
                Circle(SKETCH_14_R)
            with Locations(Location((0, 0, 0), (0, 0, 90))):
                Circle(SKETCH_14_R_2, mode=Mode.SUBTRACT)
        extrude(amount=EXTRUDE_7_DEPTH)

    # 草圖15 → 除料-伸長6 (cut)
    with SkipClean():  # the faces are left unmerged after this step: merging them gives an invalid solid
        with BuildSketch(Plane(origin=(0, 3.9, 0), x_dir=(1, 0, 0), z_dir=(0, 1, 0))):
            with Locations(Location((0, 0, 0), (0, 0, 270))):
                Circle(SKETCH_15_R)
        extrude(amount=-CUT_EXTRUDE_6_DEPTH, mode=Mode.SUBTRACT)

    # 草圖16 → 填料-伸長8 (add)
    with SkipClean():  # the faces are left unmerged after this step: merging them gives an invalid solid
        with BuildSketch(Plane.XZ.offset(-1).offset(EXTRUDE_START_5)):
            with Locations(Location((0, 0, 0), (0, 0, 270))):
                Circle(SKETCH_16_R)
            with Locations(Location((0, 0, 0), (0, 0, 270))):
                Circle(SKETCH_16_R_2, mode=Mode.SUBTRACT)
        extrude(amount=-EXTRUDE_8_DEPTH)


solid = part.part
